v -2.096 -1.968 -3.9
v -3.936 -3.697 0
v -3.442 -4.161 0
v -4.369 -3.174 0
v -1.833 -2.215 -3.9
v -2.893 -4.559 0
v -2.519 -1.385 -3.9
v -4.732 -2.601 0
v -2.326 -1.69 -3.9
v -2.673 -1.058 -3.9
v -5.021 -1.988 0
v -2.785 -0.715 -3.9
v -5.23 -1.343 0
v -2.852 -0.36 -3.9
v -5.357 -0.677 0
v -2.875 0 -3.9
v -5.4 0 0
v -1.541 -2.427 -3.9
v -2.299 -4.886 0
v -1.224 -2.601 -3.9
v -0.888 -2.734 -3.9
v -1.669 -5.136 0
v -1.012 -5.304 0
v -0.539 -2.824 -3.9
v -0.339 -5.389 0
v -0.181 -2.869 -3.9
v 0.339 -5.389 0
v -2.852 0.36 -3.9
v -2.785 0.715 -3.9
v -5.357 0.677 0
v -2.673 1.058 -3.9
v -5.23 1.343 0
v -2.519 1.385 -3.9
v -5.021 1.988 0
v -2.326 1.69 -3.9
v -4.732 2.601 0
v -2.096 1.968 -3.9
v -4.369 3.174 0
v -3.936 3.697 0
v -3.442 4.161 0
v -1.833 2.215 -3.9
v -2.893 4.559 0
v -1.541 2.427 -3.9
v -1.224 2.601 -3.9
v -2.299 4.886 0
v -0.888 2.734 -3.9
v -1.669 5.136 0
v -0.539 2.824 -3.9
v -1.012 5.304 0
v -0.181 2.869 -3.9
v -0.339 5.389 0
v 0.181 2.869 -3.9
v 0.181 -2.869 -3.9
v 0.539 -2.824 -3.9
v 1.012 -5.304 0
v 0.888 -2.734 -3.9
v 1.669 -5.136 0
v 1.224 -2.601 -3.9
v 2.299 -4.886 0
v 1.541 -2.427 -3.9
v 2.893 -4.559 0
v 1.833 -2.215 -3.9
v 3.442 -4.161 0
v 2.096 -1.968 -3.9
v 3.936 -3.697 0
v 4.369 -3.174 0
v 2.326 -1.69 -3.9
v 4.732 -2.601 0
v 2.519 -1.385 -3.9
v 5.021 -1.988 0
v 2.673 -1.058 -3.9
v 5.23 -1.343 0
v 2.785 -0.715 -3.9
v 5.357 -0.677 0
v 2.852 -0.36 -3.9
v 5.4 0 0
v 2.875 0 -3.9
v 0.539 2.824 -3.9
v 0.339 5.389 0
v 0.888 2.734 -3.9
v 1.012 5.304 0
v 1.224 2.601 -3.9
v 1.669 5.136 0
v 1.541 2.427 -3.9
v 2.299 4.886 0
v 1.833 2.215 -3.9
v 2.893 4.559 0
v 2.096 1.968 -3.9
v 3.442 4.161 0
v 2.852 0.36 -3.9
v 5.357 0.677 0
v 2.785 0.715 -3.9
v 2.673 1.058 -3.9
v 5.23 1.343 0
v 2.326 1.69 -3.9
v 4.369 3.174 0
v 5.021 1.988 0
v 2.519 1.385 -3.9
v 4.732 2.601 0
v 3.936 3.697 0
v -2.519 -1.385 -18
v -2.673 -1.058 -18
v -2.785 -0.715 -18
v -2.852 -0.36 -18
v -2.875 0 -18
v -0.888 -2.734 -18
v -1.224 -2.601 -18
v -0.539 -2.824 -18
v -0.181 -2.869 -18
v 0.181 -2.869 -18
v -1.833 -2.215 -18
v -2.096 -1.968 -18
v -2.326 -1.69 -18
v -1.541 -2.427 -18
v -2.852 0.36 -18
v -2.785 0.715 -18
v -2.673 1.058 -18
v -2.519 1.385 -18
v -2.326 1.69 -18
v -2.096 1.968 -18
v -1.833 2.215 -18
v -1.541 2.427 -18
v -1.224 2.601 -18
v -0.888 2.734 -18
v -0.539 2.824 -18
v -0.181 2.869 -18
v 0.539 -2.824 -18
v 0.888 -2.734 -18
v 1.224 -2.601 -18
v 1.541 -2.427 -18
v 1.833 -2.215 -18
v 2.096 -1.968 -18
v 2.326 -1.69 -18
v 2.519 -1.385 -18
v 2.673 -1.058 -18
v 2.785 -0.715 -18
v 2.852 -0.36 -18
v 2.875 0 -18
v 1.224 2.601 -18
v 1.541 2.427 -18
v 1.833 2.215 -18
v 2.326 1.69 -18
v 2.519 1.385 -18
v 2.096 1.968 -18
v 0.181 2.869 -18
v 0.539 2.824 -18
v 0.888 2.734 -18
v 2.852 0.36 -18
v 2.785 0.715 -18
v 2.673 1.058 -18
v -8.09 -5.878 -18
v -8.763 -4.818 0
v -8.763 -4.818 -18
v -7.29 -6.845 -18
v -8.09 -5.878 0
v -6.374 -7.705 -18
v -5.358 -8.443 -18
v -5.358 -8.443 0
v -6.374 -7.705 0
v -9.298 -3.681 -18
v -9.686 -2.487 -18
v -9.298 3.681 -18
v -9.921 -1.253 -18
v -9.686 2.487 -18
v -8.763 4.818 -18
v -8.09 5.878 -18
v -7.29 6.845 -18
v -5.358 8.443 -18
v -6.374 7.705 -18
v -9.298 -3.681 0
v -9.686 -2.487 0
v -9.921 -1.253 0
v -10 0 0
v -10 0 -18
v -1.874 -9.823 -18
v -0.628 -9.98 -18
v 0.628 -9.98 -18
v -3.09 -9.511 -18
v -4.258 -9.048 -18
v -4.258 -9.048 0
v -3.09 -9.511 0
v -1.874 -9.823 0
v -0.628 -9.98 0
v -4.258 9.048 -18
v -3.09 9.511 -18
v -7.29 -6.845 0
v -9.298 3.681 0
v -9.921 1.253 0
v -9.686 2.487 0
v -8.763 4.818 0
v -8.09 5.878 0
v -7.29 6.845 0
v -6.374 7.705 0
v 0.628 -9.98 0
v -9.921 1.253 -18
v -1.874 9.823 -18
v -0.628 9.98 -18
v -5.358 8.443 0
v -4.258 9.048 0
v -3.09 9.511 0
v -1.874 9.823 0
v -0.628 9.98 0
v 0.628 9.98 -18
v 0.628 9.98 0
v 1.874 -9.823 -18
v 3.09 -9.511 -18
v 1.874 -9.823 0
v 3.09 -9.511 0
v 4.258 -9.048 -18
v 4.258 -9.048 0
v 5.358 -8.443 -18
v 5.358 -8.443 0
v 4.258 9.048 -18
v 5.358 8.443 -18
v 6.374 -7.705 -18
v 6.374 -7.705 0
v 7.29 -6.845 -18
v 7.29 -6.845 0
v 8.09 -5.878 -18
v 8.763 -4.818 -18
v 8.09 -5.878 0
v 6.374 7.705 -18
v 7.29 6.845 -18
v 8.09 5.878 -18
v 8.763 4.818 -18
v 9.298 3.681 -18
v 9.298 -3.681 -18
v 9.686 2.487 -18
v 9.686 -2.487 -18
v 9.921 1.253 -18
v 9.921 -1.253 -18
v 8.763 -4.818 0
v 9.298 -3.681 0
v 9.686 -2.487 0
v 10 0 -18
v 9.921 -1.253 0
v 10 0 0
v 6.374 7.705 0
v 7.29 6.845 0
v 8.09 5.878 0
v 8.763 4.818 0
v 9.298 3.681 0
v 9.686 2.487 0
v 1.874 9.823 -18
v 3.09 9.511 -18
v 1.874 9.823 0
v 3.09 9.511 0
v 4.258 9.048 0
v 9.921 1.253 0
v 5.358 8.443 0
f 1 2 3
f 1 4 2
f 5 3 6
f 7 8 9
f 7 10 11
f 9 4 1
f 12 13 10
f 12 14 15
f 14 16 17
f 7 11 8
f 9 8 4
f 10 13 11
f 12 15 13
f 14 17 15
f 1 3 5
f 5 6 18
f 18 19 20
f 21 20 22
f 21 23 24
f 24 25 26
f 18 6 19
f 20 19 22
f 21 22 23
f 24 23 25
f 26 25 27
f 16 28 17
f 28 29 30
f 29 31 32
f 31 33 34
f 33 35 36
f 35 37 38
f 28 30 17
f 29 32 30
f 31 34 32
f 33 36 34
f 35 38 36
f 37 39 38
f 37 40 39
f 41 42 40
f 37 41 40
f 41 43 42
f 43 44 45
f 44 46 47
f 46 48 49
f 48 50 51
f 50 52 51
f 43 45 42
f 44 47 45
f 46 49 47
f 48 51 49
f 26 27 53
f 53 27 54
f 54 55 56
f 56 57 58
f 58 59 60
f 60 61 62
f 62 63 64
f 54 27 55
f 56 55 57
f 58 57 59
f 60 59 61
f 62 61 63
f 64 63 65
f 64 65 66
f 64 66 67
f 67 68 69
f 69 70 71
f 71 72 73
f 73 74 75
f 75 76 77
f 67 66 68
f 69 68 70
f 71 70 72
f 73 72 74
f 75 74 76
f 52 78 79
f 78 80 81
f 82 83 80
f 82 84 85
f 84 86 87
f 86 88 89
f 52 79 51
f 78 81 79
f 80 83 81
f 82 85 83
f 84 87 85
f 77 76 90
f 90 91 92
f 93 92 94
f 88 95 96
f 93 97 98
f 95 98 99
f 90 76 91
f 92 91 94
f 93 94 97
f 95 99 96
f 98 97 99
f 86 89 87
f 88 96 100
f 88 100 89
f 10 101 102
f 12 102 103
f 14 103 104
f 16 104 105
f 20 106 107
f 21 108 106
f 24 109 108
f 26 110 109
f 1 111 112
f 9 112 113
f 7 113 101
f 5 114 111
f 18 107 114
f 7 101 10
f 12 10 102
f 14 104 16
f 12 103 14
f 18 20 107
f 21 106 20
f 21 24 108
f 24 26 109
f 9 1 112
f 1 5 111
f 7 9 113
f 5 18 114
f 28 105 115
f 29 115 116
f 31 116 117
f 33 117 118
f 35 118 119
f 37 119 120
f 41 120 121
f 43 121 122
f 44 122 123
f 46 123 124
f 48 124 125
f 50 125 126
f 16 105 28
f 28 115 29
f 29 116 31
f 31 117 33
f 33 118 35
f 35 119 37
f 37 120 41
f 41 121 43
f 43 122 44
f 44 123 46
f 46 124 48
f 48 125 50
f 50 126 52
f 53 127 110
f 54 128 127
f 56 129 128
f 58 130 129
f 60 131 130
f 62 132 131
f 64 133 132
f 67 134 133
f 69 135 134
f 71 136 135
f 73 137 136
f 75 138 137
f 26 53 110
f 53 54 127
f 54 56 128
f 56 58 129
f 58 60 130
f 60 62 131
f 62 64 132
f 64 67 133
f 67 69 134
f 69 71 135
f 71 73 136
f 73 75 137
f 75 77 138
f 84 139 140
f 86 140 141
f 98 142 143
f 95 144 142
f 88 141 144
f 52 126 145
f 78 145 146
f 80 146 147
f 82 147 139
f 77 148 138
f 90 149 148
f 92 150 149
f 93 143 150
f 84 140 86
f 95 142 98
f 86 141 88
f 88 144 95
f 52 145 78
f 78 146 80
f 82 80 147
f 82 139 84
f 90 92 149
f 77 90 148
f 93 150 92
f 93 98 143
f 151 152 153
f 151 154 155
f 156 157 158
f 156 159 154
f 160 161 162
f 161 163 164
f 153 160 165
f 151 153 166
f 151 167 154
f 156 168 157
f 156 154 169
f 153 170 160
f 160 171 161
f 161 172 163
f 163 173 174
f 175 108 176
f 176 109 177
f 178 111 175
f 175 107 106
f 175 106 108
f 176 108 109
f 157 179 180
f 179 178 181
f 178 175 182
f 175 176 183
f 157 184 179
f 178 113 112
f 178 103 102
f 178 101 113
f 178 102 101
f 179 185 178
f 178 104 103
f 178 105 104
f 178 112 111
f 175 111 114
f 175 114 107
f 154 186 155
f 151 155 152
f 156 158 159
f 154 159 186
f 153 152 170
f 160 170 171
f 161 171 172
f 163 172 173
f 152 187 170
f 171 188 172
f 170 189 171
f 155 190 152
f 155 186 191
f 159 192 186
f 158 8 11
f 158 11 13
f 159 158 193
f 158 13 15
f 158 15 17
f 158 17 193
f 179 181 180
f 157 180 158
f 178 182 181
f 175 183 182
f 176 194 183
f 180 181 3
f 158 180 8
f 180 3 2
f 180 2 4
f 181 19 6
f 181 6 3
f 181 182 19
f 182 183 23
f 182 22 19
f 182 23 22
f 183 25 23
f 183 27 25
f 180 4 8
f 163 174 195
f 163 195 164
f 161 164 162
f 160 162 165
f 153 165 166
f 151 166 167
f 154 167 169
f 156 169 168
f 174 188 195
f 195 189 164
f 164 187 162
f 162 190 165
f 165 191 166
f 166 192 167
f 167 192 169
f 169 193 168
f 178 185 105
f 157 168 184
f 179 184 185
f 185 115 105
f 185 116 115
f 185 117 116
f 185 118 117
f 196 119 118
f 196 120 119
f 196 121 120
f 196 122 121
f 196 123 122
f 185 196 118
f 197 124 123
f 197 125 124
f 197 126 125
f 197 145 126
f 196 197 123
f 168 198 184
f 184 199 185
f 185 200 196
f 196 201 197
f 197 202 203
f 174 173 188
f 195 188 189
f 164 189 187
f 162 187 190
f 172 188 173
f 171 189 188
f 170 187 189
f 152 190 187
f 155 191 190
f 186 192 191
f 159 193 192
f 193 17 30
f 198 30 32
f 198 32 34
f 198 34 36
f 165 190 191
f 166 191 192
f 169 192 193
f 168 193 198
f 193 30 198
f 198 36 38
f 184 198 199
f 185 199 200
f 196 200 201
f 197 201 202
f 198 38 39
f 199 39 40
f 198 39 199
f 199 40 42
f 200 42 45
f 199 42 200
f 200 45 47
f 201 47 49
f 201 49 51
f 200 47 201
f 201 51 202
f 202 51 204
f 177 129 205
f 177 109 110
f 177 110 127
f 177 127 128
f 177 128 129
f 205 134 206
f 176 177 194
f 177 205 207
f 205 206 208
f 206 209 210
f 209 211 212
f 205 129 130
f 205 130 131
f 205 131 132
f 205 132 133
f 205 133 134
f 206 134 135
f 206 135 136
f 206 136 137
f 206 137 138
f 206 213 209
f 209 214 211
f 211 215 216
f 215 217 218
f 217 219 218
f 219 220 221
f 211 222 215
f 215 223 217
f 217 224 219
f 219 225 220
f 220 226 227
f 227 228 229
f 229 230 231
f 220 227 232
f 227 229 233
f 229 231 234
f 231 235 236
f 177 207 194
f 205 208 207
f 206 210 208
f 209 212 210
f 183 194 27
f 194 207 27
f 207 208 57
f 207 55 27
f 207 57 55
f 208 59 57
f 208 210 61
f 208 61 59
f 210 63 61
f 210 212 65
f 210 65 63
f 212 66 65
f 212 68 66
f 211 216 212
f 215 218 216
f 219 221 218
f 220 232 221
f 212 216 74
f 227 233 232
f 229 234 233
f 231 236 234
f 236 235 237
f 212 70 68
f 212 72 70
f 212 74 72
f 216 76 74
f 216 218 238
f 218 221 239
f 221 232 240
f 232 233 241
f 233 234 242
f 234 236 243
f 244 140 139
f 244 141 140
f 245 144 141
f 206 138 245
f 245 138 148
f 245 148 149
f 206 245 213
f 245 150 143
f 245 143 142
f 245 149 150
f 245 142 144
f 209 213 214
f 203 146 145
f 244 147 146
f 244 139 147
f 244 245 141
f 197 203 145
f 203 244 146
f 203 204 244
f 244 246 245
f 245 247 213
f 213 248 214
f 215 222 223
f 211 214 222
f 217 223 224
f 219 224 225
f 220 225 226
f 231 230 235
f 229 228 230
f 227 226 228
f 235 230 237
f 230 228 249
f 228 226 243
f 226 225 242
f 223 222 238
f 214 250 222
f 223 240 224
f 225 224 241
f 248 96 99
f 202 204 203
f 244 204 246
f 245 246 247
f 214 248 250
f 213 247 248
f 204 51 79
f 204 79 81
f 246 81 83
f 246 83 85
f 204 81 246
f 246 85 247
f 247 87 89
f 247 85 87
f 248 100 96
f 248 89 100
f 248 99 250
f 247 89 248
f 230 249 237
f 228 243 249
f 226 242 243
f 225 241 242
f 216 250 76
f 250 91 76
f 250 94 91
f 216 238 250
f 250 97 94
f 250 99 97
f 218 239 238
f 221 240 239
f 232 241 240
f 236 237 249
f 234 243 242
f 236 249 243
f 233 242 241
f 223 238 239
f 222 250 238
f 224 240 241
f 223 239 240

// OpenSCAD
$fn = 50;

difference() {
	union() {
		translate(v = [0, 0, -18.0]) {
			cylinder(h = 18, r = 10.0);
		}
	}
	union() {
		translate(v = [0, 0, 0]) {
			rotate(a = [0, 0, 0]) {
				difference() {
					union() {
						translate(v = [0, 0, -21.0]) {
							cylinder(h = 21, r = 2.6);
						}
						translate(v = [0, 0, -3.9]) {
							cylinder(h = 3.9, r1 = 2.875, r2 = 5.4);
						}
						translate(v = [0, 0, -21.0]) {
							cylinder(h = 21, r = 2.875);
						}
						translate(v = [0, 0, -21.0]) {
							cylinder(h = 21, r = 2.6);
						}
					}
					union();
				}
			}
		}
	}
}
